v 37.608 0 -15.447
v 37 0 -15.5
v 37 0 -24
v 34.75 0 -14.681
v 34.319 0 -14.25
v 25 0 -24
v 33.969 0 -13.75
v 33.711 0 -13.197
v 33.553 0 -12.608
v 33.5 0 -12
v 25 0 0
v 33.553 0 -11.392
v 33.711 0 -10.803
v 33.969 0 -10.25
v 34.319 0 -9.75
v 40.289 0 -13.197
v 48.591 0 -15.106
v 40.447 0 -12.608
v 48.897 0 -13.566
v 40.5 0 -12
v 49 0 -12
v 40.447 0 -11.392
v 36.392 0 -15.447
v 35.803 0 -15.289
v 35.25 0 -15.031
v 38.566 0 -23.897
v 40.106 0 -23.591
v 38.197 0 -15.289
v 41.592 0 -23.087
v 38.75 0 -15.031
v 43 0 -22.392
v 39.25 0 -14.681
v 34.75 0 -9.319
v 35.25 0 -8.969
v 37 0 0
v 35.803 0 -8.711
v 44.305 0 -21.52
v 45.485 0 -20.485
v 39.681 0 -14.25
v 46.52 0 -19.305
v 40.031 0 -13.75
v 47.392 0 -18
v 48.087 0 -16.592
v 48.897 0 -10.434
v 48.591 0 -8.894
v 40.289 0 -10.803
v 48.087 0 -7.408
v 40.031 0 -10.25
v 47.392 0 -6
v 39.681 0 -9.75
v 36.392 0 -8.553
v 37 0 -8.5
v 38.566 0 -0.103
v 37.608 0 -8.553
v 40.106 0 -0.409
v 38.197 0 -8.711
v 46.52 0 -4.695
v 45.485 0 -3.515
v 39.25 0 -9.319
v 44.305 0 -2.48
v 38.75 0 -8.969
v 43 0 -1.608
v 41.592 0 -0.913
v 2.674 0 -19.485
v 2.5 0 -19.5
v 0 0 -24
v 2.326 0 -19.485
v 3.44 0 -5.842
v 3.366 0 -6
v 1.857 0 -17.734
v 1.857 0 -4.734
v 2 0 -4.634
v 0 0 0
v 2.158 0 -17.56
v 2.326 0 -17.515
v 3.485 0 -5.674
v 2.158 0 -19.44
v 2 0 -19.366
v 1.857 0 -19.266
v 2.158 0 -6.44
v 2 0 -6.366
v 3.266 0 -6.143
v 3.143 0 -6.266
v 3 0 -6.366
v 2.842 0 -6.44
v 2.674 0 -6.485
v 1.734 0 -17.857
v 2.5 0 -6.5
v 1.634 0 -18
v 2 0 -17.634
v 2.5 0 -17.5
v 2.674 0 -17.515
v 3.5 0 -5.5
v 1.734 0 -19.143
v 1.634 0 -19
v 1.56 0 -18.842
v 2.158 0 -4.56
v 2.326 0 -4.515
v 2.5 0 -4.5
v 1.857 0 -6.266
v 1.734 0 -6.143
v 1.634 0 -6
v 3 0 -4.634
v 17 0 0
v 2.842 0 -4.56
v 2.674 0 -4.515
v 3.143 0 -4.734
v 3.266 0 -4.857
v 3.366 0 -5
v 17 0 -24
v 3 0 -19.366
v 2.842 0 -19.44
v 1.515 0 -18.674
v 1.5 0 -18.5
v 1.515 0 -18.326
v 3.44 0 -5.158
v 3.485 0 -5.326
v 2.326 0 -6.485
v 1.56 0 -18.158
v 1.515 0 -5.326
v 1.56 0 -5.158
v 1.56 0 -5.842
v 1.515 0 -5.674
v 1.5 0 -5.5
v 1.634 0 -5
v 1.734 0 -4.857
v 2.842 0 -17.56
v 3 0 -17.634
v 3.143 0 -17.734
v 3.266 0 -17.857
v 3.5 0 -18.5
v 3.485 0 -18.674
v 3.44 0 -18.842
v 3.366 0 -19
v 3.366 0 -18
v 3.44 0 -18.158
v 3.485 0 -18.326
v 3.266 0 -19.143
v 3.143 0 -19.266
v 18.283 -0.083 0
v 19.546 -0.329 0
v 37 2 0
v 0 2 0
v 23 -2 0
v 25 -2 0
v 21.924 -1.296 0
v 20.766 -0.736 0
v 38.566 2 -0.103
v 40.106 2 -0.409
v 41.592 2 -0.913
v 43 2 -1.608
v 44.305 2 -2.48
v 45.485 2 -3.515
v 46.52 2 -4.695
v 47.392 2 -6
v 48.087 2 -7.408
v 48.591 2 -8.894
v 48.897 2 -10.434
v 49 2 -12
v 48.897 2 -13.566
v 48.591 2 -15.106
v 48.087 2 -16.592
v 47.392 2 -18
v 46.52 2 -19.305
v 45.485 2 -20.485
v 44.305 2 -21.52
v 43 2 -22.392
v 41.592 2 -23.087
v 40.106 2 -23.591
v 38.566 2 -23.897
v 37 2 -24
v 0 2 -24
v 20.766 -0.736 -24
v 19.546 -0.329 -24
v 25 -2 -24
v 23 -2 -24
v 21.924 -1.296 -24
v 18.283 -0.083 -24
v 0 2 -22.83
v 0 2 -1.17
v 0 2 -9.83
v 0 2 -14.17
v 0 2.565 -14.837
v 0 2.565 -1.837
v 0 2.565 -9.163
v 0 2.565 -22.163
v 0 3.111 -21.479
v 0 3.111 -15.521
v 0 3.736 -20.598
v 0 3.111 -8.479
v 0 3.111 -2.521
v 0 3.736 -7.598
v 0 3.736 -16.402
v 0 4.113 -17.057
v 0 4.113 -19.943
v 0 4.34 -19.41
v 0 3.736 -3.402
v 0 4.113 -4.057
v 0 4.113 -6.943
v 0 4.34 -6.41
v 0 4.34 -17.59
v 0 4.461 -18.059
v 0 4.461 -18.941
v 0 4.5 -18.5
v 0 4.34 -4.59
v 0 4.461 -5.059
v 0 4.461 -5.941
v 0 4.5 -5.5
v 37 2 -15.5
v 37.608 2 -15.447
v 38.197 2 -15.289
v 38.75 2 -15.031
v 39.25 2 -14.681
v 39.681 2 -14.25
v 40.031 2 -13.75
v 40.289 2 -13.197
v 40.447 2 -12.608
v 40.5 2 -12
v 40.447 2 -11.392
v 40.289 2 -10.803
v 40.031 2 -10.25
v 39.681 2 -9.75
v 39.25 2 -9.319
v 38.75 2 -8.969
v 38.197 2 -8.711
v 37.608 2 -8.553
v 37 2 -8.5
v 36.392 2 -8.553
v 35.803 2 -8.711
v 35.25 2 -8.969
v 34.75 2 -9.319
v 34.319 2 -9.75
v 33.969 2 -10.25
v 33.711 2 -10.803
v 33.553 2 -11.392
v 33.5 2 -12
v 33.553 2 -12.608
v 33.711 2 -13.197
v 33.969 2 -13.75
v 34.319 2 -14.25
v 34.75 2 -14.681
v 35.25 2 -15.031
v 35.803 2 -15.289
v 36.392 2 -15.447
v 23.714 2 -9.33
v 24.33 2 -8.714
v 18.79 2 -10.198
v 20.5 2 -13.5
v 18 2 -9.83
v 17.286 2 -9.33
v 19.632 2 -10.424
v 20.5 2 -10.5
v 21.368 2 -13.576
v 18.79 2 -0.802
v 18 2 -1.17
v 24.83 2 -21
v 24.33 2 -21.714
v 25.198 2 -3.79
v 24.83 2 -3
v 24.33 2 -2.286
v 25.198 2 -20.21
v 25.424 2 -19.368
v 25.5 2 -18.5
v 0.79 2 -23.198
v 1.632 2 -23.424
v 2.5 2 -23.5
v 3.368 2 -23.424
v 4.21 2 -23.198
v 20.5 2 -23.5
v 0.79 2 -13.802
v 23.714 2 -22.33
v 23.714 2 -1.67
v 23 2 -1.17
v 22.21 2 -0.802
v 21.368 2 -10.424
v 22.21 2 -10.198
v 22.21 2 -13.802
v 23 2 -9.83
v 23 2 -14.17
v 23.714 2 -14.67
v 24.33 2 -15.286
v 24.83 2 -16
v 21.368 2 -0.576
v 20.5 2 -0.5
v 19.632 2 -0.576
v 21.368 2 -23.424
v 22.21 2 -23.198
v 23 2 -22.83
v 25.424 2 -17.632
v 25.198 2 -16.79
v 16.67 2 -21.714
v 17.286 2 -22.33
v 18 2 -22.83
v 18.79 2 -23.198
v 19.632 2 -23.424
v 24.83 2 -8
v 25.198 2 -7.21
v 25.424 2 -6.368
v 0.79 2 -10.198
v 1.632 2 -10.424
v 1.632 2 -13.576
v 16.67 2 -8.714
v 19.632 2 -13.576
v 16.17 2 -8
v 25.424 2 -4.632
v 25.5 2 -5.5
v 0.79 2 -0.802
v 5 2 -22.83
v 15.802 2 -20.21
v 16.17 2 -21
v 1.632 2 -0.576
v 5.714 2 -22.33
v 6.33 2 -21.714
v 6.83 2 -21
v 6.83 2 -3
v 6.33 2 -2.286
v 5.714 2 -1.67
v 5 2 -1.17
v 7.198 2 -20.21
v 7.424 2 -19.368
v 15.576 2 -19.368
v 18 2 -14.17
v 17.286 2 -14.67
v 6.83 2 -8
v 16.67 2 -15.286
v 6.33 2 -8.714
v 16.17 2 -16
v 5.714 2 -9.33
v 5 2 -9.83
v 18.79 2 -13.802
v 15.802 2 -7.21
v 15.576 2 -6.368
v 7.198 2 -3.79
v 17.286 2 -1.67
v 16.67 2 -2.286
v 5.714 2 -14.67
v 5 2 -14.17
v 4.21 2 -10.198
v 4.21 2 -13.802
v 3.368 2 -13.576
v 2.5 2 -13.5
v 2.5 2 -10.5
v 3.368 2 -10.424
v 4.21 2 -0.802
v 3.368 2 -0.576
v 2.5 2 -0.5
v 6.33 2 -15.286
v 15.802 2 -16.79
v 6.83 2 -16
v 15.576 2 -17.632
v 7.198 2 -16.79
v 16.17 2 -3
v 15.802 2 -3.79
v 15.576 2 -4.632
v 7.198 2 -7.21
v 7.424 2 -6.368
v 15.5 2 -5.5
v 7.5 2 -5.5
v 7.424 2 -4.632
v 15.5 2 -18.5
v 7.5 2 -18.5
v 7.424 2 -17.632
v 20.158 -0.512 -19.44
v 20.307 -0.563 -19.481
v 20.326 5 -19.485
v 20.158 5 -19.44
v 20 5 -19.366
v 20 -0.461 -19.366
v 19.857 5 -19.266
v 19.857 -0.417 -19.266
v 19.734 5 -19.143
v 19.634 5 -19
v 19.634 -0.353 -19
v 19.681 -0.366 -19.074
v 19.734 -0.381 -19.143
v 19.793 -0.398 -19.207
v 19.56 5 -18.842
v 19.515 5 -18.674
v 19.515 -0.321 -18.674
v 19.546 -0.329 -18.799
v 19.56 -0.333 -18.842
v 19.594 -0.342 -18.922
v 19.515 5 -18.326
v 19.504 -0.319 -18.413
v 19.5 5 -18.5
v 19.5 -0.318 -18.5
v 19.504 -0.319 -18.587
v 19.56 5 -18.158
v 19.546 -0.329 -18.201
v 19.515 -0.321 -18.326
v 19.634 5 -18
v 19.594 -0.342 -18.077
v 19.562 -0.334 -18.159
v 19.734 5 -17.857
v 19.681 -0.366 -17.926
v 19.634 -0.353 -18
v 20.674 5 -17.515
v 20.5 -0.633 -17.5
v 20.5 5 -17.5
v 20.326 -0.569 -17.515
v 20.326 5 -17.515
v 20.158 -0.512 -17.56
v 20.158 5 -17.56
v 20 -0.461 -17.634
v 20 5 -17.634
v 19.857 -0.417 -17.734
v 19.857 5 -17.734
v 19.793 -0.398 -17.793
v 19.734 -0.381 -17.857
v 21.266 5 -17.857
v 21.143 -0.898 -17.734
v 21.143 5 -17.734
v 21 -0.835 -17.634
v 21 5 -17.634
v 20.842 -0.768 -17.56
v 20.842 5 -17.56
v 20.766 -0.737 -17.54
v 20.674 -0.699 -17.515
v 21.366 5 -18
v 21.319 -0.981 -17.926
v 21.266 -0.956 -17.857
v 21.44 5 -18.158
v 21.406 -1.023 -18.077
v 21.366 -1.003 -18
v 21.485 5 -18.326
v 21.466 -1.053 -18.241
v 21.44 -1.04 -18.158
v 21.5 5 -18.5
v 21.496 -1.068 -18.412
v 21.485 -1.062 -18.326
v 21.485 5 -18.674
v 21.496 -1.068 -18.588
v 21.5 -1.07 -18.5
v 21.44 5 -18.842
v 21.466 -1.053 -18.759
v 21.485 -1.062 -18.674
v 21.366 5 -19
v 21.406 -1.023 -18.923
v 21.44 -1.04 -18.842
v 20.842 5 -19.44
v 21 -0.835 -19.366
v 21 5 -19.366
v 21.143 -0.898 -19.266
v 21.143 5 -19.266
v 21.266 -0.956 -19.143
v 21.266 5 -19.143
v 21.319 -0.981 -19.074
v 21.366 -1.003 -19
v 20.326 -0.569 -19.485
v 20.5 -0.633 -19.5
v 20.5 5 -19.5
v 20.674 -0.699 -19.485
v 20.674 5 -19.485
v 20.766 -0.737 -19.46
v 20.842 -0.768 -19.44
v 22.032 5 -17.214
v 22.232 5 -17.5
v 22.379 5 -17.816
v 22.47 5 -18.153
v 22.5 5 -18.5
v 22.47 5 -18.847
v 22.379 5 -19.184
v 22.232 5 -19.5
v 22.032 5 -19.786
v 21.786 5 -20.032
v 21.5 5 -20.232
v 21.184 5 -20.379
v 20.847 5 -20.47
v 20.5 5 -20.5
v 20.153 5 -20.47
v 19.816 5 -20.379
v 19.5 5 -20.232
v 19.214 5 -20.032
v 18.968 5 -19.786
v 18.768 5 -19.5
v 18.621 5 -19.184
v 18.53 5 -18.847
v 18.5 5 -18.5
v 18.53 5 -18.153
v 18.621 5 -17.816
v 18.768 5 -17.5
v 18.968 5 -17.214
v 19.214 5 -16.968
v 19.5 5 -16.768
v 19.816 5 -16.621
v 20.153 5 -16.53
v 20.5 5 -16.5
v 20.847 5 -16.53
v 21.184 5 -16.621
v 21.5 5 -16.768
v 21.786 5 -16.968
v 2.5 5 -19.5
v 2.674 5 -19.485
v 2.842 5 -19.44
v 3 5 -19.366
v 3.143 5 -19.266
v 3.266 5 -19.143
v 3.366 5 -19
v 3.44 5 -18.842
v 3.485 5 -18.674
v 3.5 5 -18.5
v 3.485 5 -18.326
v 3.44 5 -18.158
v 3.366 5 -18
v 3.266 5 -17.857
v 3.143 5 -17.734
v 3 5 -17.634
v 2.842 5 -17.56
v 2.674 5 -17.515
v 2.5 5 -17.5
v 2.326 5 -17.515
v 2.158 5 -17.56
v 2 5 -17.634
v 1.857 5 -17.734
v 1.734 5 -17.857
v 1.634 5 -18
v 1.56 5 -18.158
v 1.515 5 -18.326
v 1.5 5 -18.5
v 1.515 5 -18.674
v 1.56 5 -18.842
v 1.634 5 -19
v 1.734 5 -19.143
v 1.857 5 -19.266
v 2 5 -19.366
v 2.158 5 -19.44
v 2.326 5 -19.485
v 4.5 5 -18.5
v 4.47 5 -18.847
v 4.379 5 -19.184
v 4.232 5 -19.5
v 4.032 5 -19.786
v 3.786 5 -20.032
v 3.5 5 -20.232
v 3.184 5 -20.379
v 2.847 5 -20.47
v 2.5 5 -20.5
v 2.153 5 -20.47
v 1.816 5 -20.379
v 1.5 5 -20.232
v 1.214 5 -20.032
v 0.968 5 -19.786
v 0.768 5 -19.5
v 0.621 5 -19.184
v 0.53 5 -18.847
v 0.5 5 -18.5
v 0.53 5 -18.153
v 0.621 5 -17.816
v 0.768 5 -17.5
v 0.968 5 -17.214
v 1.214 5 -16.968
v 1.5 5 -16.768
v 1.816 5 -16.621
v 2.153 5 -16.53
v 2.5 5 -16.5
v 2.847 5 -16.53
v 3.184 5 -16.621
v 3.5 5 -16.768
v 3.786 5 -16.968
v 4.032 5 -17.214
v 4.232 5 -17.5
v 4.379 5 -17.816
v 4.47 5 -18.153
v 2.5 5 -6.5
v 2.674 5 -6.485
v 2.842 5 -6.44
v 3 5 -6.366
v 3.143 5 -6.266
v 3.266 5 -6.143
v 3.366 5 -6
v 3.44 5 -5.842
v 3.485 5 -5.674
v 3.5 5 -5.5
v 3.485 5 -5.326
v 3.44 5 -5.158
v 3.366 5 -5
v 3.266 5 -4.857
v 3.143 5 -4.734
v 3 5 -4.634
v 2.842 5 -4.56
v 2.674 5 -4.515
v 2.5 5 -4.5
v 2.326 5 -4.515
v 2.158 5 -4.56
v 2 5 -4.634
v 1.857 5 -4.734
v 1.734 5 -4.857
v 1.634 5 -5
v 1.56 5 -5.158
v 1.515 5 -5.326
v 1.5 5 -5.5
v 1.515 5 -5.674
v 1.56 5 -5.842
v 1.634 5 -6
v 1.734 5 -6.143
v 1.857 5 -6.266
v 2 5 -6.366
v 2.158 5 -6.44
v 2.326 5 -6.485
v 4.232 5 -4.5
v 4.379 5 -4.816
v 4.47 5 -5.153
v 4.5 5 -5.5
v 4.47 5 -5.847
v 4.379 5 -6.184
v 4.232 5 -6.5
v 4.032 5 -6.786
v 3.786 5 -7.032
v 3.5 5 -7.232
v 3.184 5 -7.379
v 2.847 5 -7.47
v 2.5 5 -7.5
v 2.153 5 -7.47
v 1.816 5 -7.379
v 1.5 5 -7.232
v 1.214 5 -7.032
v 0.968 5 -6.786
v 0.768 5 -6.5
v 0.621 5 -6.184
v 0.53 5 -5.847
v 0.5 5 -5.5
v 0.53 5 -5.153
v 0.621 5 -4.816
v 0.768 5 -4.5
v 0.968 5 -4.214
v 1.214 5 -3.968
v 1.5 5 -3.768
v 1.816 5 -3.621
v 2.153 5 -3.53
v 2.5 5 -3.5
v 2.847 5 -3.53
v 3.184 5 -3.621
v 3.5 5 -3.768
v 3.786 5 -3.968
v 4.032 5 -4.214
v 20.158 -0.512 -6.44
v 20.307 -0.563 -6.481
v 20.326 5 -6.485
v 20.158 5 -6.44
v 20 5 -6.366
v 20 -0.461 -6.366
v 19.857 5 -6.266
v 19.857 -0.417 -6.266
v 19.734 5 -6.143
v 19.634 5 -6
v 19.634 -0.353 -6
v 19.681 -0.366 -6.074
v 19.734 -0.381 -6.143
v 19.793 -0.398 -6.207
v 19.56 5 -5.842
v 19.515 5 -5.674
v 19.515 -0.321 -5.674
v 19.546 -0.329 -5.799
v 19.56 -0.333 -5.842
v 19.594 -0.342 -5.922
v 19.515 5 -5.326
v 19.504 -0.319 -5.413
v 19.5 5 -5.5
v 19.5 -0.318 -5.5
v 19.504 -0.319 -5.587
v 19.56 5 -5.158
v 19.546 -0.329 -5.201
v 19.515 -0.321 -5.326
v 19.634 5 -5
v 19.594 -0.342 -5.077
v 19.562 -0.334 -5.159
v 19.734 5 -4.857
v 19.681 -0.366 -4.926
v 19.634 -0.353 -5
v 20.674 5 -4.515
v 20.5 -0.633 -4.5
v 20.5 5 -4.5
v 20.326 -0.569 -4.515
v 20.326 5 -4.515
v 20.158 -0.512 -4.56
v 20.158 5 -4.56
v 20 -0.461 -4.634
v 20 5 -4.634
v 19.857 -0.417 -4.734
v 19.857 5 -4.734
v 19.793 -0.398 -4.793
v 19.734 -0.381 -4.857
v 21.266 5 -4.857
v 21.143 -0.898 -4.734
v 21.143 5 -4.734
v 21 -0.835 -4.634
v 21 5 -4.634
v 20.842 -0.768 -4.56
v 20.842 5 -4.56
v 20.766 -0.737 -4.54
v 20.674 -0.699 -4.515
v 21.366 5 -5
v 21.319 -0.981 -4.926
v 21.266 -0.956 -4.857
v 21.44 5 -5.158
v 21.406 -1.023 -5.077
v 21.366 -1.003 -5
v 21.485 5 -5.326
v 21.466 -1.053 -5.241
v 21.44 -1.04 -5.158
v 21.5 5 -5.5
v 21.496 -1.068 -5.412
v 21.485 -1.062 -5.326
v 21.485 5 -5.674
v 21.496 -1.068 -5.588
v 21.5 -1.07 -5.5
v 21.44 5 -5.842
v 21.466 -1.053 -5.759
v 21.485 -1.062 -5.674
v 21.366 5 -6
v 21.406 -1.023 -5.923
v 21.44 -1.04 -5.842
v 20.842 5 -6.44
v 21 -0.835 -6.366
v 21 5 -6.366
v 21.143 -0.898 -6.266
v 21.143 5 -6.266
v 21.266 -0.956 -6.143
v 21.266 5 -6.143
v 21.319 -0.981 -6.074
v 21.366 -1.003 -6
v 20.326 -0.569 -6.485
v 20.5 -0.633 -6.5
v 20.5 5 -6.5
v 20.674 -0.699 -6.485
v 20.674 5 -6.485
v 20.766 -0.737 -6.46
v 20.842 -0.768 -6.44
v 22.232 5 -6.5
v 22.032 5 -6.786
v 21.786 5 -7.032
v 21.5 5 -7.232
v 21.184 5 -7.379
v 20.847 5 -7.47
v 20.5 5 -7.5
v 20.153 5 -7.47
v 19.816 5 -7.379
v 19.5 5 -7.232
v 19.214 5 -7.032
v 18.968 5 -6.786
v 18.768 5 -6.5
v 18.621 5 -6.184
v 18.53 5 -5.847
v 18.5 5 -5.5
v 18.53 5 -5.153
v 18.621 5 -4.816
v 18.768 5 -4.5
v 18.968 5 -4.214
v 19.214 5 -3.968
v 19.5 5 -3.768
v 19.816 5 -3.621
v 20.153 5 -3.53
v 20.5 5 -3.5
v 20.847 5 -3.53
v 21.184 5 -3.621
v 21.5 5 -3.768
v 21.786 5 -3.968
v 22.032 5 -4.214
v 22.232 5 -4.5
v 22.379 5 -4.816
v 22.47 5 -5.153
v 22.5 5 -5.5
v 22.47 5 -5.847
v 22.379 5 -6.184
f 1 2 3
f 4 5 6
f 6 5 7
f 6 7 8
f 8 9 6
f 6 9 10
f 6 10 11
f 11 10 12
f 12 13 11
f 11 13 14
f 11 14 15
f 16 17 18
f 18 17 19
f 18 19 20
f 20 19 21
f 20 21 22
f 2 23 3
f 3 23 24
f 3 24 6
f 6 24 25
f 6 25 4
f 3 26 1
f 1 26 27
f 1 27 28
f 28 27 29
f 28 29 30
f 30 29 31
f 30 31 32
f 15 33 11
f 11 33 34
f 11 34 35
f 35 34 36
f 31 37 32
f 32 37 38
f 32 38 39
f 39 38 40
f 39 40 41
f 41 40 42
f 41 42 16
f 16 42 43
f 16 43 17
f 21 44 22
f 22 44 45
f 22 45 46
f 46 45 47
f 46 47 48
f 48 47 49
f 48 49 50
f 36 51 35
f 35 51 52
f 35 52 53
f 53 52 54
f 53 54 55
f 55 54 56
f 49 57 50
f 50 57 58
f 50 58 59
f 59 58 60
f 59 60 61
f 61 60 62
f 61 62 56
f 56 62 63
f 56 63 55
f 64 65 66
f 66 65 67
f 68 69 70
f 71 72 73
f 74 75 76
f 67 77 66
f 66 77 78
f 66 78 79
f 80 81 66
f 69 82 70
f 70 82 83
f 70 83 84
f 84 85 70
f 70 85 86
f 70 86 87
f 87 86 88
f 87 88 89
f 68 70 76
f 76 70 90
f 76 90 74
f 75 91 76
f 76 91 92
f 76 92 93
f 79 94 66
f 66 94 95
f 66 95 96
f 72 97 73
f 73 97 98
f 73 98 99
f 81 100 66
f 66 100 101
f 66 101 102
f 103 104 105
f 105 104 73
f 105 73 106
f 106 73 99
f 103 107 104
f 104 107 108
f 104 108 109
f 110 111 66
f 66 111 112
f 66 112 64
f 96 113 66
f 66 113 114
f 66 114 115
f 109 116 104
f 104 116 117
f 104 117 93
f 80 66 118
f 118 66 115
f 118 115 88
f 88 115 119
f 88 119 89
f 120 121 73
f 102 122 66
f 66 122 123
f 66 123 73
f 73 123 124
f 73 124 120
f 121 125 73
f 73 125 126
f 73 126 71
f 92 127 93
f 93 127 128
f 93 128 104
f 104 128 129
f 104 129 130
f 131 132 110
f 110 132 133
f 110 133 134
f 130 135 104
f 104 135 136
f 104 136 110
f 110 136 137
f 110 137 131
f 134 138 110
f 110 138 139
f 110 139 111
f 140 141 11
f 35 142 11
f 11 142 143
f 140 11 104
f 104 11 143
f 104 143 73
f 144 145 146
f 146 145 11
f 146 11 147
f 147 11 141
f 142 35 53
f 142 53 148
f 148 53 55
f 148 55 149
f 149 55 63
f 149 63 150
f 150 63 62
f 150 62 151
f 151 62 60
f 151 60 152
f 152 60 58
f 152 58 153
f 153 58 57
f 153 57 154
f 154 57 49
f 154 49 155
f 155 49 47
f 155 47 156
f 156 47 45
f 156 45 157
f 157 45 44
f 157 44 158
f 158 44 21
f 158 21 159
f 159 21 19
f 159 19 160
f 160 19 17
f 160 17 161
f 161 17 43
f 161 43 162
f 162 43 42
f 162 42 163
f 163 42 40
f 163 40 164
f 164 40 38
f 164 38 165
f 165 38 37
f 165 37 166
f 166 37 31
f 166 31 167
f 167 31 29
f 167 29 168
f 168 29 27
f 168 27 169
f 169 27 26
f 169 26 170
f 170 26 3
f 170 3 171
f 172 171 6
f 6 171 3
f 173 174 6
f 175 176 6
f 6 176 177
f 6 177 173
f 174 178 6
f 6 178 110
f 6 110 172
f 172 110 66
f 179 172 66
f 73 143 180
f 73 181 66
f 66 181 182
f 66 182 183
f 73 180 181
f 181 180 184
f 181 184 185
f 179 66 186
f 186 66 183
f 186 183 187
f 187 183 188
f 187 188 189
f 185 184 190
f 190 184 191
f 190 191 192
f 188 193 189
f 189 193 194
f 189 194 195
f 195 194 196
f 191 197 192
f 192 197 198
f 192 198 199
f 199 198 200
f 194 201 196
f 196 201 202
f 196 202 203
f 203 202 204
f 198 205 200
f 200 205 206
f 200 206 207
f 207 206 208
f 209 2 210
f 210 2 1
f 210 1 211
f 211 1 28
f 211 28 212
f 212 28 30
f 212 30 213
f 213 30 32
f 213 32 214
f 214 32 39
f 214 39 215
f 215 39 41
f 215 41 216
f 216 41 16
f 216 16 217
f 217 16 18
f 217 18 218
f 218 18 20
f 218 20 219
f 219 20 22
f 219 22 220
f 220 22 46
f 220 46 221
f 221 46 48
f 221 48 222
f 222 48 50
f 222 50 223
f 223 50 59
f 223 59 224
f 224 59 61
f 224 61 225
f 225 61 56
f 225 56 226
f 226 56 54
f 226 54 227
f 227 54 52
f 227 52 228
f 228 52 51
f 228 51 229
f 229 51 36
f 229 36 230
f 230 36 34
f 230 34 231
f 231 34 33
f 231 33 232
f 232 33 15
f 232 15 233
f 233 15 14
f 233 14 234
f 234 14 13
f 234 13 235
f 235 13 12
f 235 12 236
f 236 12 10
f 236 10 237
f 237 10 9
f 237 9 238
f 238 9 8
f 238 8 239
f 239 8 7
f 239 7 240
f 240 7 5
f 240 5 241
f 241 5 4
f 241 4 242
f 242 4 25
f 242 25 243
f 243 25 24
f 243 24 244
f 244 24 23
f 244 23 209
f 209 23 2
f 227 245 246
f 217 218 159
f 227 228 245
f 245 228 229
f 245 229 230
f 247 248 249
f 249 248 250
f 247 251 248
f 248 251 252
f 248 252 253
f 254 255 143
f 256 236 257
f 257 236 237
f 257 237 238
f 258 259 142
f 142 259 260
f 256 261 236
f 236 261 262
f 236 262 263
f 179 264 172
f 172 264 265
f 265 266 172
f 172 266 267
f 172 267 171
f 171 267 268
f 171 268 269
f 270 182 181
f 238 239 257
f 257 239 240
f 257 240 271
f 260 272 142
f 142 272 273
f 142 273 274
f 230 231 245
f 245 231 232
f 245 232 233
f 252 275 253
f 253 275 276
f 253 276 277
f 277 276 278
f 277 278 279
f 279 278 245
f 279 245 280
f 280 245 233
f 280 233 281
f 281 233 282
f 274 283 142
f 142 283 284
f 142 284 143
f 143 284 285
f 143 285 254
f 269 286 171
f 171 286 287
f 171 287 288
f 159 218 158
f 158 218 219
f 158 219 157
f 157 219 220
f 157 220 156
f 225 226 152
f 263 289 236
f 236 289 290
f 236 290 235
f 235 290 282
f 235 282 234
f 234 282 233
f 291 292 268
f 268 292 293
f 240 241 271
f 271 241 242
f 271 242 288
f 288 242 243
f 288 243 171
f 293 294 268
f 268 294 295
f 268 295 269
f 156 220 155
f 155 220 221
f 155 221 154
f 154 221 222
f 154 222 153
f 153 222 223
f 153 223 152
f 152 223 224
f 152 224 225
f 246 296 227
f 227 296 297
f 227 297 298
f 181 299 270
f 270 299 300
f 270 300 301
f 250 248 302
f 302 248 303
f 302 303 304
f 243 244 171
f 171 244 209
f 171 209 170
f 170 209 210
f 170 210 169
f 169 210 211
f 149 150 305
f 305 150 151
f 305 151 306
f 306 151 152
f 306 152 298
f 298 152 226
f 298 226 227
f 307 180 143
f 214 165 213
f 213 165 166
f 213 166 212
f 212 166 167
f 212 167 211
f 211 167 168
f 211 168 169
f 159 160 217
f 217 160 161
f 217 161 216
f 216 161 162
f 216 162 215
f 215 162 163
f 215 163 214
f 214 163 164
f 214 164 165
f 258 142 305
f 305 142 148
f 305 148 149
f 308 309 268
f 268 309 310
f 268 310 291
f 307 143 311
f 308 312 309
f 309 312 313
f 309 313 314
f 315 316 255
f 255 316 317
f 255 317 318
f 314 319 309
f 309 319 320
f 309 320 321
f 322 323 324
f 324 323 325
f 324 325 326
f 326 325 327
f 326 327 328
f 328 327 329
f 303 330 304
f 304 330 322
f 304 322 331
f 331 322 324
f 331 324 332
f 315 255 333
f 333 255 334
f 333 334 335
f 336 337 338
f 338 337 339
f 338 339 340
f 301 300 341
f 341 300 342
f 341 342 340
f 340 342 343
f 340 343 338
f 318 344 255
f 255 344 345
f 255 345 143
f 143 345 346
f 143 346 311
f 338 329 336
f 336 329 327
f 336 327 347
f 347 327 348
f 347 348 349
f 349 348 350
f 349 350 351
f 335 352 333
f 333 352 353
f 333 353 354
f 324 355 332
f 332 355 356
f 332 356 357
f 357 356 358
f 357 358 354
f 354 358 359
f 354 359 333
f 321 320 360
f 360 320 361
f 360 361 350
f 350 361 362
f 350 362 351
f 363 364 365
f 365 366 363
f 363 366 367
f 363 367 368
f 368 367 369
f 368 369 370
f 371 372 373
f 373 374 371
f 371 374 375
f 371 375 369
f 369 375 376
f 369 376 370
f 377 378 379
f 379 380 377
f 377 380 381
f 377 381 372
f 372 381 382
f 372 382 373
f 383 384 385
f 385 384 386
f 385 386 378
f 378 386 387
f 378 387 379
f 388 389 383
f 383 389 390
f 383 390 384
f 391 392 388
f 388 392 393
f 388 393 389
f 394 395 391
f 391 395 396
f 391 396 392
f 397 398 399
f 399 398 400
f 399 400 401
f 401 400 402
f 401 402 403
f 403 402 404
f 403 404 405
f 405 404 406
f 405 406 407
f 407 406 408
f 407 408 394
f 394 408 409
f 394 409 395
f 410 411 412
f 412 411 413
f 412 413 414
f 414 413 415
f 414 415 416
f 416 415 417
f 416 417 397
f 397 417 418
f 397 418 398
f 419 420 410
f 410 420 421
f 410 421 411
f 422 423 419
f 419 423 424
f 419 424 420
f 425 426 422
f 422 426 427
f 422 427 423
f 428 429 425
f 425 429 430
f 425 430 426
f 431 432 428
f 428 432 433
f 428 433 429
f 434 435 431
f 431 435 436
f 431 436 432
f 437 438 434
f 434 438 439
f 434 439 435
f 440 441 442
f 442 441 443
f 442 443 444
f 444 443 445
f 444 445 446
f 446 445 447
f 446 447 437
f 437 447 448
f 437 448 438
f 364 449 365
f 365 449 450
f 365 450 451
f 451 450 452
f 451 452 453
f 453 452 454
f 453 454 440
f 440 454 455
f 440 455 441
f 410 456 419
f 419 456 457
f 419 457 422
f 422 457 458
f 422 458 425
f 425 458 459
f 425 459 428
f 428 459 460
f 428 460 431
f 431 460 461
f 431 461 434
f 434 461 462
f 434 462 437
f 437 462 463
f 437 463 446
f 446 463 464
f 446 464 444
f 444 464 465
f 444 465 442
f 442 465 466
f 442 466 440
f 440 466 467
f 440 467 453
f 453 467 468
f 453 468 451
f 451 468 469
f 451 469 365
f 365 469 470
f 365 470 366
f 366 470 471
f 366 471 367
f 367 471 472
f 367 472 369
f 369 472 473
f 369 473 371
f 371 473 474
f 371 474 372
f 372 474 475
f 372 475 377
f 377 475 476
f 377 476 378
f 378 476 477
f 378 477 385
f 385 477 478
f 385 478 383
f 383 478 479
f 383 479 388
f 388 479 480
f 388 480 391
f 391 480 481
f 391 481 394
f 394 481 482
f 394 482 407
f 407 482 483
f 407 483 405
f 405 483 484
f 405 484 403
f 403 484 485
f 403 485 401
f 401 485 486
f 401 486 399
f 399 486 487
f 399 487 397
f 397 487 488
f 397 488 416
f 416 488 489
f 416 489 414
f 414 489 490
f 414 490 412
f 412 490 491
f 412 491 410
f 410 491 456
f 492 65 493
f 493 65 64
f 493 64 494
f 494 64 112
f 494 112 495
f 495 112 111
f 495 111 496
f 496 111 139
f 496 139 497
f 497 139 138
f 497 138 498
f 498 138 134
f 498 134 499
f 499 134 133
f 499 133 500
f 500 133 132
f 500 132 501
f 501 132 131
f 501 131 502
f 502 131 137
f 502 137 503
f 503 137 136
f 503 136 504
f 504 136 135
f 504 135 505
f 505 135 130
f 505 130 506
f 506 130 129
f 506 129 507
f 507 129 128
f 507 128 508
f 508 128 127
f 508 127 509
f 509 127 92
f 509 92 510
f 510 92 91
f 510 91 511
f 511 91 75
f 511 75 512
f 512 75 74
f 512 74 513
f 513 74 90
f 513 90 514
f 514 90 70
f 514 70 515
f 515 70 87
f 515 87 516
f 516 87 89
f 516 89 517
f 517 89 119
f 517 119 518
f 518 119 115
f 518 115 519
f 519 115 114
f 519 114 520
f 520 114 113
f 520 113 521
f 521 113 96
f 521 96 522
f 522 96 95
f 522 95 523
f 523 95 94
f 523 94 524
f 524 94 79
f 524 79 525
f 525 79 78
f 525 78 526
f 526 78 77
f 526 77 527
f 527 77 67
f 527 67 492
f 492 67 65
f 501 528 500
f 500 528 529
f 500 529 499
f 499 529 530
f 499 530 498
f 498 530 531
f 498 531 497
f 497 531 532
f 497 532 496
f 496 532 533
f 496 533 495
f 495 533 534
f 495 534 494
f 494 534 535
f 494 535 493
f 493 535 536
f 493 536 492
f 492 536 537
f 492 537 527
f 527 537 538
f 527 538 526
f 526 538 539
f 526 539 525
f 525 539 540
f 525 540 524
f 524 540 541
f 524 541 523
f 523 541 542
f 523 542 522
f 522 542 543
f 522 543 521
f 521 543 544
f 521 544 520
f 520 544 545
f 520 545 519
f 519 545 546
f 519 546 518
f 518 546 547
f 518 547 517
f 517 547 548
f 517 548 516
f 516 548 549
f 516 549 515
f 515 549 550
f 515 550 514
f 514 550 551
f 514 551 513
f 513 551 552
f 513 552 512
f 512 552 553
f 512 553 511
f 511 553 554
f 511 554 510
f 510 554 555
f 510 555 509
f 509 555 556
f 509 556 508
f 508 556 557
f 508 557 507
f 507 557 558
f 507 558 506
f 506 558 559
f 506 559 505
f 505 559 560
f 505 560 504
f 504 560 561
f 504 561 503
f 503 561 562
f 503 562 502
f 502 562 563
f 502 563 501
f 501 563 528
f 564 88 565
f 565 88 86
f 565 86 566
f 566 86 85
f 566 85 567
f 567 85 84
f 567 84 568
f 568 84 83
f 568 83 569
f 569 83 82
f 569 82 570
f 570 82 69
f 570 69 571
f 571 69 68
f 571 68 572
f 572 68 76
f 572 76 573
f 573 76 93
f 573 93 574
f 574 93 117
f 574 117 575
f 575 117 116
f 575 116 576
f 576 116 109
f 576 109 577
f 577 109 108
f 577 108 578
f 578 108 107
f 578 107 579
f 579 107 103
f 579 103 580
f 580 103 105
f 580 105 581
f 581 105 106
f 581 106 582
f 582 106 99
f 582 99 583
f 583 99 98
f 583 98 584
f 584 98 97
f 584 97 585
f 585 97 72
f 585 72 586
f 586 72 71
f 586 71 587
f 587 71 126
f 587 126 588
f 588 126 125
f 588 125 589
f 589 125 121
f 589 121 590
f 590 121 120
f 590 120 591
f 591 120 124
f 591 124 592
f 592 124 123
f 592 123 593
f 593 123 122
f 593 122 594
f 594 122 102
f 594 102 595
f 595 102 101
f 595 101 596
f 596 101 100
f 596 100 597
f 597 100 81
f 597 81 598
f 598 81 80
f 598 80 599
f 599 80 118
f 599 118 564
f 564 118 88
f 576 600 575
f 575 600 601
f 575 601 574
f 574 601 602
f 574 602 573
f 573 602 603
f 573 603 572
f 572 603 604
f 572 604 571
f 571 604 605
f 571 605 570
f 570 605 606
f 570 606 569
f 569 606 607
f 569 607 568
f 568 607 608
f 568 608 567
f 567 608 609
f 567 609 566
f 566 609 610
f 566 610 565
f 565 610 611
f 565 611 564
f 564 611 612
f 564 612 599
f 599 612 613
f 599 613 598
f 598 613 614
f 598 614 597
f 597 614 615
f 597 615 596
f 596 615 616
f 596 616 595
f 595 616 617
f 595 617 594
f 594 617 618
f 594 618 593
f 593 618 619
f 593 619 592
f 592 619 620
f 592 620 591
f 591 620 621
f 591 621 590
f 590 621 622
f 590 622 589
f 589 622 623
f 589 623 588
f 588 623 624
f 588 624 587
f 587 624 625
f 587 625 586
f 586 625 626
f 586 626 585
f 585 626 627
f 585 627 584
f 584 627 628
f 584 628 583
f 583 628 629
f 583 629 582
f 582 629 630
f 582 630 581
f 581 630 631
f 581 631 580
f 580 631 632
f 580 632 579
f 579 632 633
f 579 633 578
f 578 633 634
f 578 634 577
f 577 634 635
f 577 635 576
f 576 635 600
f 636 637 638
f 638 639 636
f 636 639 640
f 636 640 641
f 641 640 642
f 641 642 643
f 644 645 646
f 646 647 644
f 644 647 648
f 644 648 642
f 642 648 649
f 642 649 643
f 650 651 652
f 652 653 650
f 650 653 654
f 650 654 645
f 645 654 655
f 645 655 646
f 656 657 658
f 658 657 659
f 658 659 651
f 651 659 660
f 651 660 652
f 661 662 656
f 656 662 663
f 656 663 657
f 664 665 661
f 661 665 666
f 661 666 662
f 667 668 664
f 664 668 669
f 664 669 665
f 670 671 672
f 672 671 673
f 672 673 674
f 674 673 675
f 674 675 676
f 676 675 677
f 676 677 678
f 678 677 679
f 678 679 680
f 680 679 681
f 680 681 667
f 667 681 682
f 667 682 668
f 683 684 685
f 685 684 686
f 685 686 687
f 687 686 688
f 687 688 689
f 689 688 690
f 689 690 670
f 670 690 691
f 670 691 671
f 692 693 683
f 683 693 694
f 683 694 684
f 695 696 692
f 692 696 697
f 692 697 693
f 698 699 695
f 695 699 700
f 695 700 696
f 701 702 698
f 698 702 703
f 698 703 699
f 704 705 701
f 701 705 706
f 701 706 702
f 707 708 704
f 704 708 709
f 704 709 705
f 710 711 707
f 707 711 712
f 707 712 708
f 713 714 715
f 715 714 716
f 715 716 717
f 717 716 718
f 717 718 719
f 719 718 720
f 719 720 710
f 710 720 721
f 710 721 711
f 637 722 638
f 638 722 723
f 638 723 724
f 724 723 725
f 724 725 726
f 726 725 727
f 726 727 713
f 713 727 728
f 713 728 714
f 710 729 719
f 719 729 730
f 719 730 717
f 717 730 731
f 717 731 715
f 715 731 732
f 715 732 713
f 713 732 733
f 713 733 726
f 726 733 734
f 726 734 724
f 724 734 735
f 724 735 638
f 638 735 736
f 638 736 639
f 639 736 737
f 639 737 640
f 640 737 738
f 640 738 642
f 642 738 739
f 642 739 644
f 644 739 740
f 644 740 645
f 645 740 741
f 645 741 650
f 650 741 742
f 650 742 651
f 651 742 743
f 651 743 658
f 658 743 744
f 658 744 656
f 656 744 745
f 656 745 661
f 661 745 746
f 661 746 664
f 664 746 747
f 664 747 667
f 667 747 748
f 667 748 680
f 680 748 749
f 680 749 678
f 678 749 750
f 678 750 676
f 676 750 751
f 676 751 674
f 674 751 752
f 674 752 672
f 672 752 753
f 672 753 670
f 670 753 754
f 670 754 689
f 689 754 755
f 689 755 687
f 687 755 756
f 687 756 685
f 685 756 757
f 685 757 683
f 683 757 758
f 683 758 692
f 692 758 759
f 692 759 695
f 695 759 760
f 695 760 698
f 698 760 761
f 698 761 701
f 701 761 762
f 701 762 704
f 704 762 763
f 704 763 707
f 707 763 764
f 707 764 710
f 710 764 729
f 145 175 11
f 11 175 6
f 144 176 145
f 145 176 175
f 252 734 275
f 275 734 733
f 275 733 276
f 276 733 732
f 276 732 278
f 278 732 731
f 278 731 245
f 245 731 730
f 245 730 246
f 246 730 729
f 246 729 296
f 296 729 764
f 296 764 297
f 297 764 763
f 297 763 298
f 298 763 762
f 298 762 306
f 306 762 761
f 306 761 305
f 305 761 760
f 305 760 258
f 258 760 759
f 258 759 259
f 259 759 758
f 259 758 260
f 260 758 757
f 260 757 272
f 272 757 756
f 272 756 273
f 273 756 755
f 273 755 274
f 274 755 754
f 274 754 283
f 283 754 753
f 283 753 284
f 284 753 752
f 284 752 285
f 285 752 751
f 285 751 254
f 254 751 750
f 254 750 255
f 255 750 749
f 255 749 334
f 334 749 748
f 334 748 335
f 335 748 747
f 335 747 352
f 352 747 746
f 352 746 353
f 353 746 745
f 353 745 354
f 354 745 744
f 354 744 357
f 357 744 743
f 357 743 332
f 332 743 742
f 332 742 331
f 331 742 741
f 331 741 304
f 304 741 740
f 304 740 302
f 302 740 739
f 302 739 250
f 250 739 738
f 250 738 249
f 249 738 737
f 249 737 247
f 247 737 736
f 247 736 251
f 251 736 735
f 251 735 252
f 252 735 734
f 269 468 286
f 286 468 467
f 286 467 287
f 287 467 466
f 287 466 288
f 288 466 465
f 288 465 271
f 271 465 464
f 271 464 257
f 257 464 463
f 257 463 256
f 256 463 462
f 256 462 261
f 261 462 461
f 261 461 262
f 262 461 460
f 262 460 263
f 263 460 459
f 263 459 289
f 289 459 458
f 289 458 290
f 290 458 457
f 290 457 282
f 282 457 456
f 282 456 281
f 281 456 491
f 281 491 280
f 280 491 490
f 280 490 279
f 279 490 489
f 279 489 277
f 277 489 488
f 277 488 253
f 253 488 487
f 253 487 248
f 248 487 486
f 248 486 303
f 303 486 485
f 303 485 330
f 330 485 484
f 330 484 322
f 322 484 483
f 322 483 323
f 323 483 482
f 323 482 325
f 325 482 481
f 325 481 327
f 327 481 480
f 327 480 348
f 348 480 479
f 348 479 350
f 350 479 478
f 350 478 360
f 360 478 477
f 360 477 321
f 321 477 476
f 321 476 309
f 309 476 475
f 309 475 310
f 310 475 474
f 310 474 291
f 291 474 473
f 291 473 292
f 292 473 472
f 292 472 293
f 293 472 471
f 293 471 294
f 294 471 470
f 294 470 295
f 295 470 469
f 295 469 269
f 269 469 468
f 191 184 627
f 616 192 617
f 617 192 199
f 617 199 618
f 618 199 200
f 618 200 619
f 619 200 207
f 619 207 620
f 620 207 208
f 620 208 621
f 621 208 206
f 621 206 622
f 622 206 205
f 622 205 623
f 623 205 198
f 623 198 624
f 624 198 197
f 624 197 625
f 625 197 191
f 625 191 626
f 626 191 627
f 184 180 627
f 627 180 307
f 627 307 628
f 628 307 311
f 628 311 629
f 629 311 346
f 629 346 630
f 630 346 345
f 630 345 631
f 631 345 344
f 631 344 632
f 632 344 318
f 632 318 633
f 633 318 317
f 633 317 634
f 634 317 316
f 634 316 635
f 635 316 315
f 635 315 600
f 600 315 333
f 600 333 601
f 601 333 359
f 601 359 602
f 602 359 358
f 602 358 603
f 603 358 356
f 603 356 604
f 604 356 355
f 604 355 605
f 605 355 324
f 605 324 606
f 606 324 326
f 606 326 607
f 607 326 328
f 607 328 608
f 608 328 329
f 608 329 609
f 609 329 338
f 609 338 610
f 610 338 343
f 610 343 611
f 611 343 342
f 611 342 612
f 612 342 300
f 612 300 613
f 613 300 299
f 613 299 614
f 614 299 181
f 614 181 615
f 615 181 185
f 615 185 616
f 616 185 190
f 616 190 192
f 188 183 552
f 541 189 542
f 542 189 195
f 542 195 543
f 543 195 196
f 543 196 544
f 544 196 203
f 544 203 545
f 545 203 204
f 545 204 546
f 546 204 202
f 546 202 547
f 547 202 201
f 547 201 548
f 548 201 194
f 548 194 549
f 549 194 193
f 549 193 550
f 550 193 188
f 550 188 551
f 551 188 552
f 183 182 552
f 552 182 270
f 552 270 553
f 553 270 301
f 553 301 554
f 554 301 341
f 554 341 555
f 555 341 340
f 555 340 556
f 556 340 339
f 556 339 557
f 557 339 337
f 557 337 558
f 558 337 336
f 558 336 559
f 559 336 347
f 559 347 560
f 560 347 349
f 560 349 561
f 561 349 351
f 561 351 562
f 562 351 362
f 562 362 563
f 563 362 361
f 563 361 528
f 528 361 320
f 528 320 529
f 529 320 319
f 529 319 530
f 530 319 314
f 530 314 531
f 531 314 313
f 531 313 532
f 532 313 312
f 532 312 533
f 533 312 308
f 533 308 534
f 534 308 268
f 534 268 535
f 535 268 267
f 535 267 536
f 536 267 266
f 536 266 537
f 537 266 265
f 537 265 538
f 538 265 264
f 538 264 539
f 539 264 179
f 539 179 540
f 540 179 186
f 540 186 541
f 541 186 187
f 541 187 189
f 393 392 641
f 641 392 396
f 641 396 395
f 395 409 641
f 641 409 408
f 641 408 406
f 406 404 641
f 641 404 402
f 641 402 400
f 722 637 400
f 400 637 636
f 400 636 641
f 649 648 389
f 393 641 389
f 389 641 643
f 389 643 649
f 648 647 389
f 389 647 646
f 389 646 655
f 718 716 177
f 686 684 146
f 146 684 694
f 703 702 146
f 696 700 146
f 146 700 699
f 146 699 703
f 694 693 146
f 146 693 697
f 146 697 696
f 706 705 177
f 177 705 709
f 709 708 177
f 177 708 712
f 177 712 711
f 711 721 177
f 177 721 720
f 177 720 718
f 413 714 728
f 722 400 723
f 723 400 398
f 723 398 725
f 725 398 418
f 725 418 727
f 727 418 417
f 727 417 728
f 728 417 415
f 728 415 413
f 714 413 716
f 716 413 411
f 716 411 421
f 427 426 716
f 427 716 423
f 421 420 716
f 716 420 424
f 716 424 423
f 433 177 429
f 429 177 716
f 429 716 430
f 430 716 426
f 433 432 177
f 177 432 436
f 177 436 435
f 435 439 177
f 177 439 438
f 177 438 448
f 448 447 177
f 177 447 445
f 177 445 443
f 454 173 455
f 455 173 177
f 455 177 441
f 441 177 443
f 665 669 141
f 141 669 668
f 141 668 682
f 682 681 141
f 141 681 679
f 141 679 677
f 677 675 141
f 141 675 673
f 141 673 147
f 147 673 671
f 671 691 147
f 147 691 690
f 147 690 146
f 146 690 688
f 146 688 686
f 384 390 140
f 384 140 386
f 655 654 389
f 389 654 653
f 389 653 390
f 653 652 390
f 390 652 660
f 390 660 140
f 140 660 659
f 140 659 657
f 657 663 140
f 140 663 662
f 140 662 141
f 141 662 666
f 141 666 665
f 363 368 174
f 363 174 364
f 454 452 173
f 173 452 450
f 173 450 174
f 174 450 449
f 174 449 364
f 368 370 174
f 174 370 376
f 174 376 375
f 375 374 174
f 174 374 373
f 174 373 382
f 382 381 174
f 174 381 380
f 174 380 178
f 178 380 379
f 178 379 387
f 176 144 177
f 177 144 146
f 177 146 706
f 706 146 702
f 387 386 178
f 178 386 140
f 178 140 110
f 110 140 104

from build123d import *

# Parameters (mm, degrees)
ESBO_O1_W                = 11.5
ESBO_O1_H                = 24
ESBO_O1_R                = 2
ESBO_O1_R_2              = 3.5
ESBO_O1_W_2              = 2
RESSALTO_EXTRUS_O1_DEPTH = 2
ESBO_O1_3_R              = 2
ESBO_O1_3_R_2            = 1
RESSALTO_EXTRUS_O2_DEPTH = 5
ESBO_O1_4_W              = 2
ESBO_O1_4_H              = 24
RESSALTO_EXTRUS_O3_DEPTH = 2
CHANFRO1_SIZE            = 3
FILETE1_R                = 10


with BuildPart() as part:
    # Esboço1 → Ressalto-extrusão1 (new body)
    # profile 1 of 4: a face of its own
    with BuildSketch(Plane(origin=(0, 0, 0), x_dir=(1, 0, 0), z_dir=(0, 1, 0))):
        with Locations((5.75, 12)):
            Rectangle(ESBO_O1_W, ESBO_O1_H)
        with Locations(Location((2.5, 5.5, 0), (0, 0, 270))):
            Circle(ESBO_O1_R, mode=Mode.SUBTRACT)
        with Locations(Location((2.5, 18.5, 0), (0, 0, 270))):
            Circle(ESBO_O1_R, mode=Mode.SUBTRACT)
    # profile 2 of 4: a face of its own
    with BuildSketch(Plane(origin=(0, 0, 0), x_dir=(1, 0, 0), z_dir=(0, 1, 0))):
        with Locations((17.25, 12)):
            Rectangle(ESBO_O1_W, ESBO_O1_H)
        with Locations(Location((20.5, 5.5, 0), (0, 0, 270))):
            Circle(ESBO_O1_R, mode=Mode.SUBTRACT)
        with Locations(Location((20.5, 18.5, 0), (0, 0, 270))):
            Circle(ESBO_O1_R, mode=Mode.SUBTRACT)
    # profile 3 of 4: a face of its own
    with BuildSketch(Plane(origin=(0, 0, 0), x_dir=(1, 0, 0), z_dir=(0, 1, 0))):
        with BuildLine():
            Line((37, 24), (25, 24))
            Line((25, 24), (25, 0))
            Line((25, 0), (37, 0))
            ThreePointArc((37, 0), (49, 12), (37, 24))
        make_face()
        with Locations(Location((37, 12, 0), (0, 0, 270))):
            Circle(ESBO_O1_R_2, mode=Mode.SUBTRACT)
    # profile 4 of 4: a face of its own
    with BuildSketch(Plane(origin=(0, 0, 0), x_dir=(1, 0, 0), z_dir=(0, 1, 0))):
        with Locations((24, 12)):
            Rectangle(ESBO_O1_W_2, ESBO_O1_H)
    extrude(amount=RESSALTO_EXTRUS_O1_DEPTH)

    # Esboço1<3> → Ressalto-extrusão2 (add)
    # profile 1 of 4: a face of its own
    with BuildSketch(Plane(origin=(0, 0, 0), x_dir=(1, 0, 0), z_dir=(0, 1, 0))):
        with Locations(Location((20.5, 18.5, 0), (0, 0, 270))):
            Circle(ESBO_O1_3_R)
        with Locations(Location((20.5, 18.5, 0), (0, 0, 270))):
            Circle(ESBO_O1_3_R_2, mode=Mode.SUBTRACT)
    # profile 2 of 4: a face of its own
    with BuildSketch(Plane(origin=(0, 0, 0), x_dir=(1, 0, 0), z_dir=(0, 1, 0))):
        with Locations(Location((2.5, 18.5, 0), (0, 0, 270))):
            Circle(ESBO_O1_3_R)
        with Locations(Location((2.5, 18.5, 0), (0, 0, 270))):
            Circle(ESBO_O1_3_R_2, mode=Mode.SUBTRACT)
    # profile 3 of 4: a face of its own
    with BuildSketch(Plane(origin=(0, 0, 0), x_dir=(1, 0, 0), z_dir=(0, 1, 0))):
        with Locations(Location((2.5, 5.5, 0), (0, 0, 270))):
            Circle(ESBO_O1_3_R)
        with Locations(Location((2.5, 5.5, 0), (0, 0, 270))):
            Circle(ESBO_O1_3_R_2, mode=Mode.SUBTRACT)
    # profile 4 of 4: a face of its own
    with BuildSketch(Plane(origin=(0, 0, 0), x_dir=(1, 0, 0), z_dir=(0, 1, 0))):
        with Locations(Location((20.5, 5.5, 0), (0, 0, 270))):
            Circle(ESBO_O1_3_R)
        with Locations(Location((20.5, 5.5, 0), (0, 0, 270))):
            Circle(ESBO_O1_3_R_2, mode=Mode.SUBTRACT)
    extrude(amount=RESSALTO_EXTRUS_O2_DEPTH)

    # Esboço1<4> → Ressalto-extrusão3 (add)
    with BuildSketch(Plane(origin=(0, 0, 0), x_dir=(1, 0, 0), z_dir=(0, 1, 0))):
        with Locations((24, 12)):
            Rectangle(ESBO_O1_4_W, ESBO_O1_4_H)
    extrude(amount=-RESSALTO_EXTRUS_O3_DEPTH)

    # Chanfro1
    # the kernel refuses this chamfer: 3 mm, written as the material it adds along each edge
    with BuildSketch(Plane(origin=(20.5, 2, -18.5), x_dir=(0, 0, 1), z_dir=(-1, 0, 0))) as chanfro1_piece_1_section:
        Polygon((2 + CHANFRO1_SIZE, 0), (2, CHANFRO1_SIZE), (2, 0), align=None)
    chanfro1_piece_1 = revolve(axis=Axis((20.5, 2, -18.5), (0, 1, 0)), mode=Mode.PRIVATE)
    chanfro1_piece_1 = split(chanfro1_piece_1, bisect_by=Plane(origin=(20.5, 5, -22.010399956), z_dir=(0, -1, 0)), keep=Keep.TOP, mode=Mode.PRIVATE)
    add(chanfro1_piece_1)
    with BuildSketch(Plane(origin=(2.5, 2, -18.5), x_dir=(0, 0, 1), z_dir=(-1, 0, 0))) as chanfro1_piece_2_section:
        Polygon((2 + CHANFRO1_SIZE, 0), (2, CHANFRO1_SIZE), (2, 0), align=None)
    chanfro1_piece_2 = revolve(axis=Axis((2.5, 2, -18.5), (0, 1, 0)), mode=Mode.PRIVATE)
    chanfro1_piece_2 = split(chanfro1_piece_2, bisect_by=Plane(origin=(0, 3.427479449, -22.012332263), z_dir=(1, 0, 0)), keep=Keep.TOP, mode=Mode.PRIVATE)
    chanfro1_piece_2 = split(chanfro1_piece_2, bisect_by=Plane(origin=(2.5, 5, -22.012332263), z_dir=(0, -1, 0)), keep=Keep.TOP, mode=Mode.PRIVATE)
    add(chanfro1_piece_2)
    with BuildSketch(Plane(origin=(2.5, 2, -5.5), x_dir=(0, 0, 1), z_dir=(-1, 0, 0))) as chanfro1_piece_3_section:
        Polygon((2 + CHANFRO1_SIZE, 0), (2, CHANFRO1_SIZE), (2, 0), align=None)
    chanfro1_piece_3 = revolve(axis=Axis((2.5, 2, -5.5), (0, 1, 0)), mode=Mode.PRIVATE)
    chanfro1_piece_3 = split(chanfro1_piece_3, bisect_by=Plane(origin=(0, 3.427479449, -9.012332263), z_dir=(1, 0, 0)), keep=Keep.TOP, mode=Mode.PRIVATE)
    chanfro1_piece_3 = split(chanfro1_piece_3, bisect_by=Plane(origin=(2.5, 5, -9.012332263), z_dir=(0, -1, 0)), keep=Keep.TOP, mode=Mode.PRIVATE)
    add(chanfro1_piece_3)
    with BuildSketch(Plane(origin=(20.5, 2, -5.5), x_dir=(0, 0, 1), z_dir=(-1, 0, 0))) as chanfro1_piece_4_section:
        Polygon((2 + CHANFRO1_SIZE, 0), (2, CHANFRO1_SIZE), (2, 0), align=None)
    chanfro1_piece_4 = revolve(axis=Axis((20.5, 2, -5.5), (0, 1, 0)), mode=Mode.PRIVATE)
    chanfro1_piece_4 = split(chanfro1_piece_4, bisect_by=Plane(origin=(20.5, 5, -9.010399956), z_dir=(0, -1, 0)), keep=Keep.TOP, mode=Mode.PRIVATE)
    add(chanfro1_piece_4)

    # Filete1
    # the kernel refuses this fillet: 10 mm, written as the material it adds along each edge
    with BuildSketch(Plane(origin=(23, 0, -24), x_dir=(-1, 0, 0), z_dir=(0, 0, 1))) as filete1_piece_1_section:
        with BuildLine():
            CenterArc((6, 10), FILETE1_R, 233.130102354, 36.869897646)
            Line((0, 2), (-0.12, 1.84))
            ThreePointArc((-0.12, 1.84), (-0.2, 1), (-0.2, 0))
            Line((-0.2, 0), (0, -0.2))
            Line((0, -0.2), (6, -0.2))
            Line((6, -0.2), (6, 0))
        make_face()
    filete1_piece_1 = extrude(amount=24, mode=Mode.PRIVATE)
    filete1_piece_1 = filete1_piece_1 - Plane(origin=(20.5, -0.461272254, -5.5), x_dir=(0, 0, 1), z_dir=(0, -1, 0)) * Cylinder(1, 73, mode=Mode.PRIVATE)
    filete1_piece_1 = filete1_piece_1 - Plane(origin=(20.5, -0.461272254, -18.5), x_dir=(0, 0, 1), z_dir=(0, -1, 0)) * Cylinder(1, 73, mode=Mode.PRIVATE)
    add(filete1_piece_1)


solid = part.part
